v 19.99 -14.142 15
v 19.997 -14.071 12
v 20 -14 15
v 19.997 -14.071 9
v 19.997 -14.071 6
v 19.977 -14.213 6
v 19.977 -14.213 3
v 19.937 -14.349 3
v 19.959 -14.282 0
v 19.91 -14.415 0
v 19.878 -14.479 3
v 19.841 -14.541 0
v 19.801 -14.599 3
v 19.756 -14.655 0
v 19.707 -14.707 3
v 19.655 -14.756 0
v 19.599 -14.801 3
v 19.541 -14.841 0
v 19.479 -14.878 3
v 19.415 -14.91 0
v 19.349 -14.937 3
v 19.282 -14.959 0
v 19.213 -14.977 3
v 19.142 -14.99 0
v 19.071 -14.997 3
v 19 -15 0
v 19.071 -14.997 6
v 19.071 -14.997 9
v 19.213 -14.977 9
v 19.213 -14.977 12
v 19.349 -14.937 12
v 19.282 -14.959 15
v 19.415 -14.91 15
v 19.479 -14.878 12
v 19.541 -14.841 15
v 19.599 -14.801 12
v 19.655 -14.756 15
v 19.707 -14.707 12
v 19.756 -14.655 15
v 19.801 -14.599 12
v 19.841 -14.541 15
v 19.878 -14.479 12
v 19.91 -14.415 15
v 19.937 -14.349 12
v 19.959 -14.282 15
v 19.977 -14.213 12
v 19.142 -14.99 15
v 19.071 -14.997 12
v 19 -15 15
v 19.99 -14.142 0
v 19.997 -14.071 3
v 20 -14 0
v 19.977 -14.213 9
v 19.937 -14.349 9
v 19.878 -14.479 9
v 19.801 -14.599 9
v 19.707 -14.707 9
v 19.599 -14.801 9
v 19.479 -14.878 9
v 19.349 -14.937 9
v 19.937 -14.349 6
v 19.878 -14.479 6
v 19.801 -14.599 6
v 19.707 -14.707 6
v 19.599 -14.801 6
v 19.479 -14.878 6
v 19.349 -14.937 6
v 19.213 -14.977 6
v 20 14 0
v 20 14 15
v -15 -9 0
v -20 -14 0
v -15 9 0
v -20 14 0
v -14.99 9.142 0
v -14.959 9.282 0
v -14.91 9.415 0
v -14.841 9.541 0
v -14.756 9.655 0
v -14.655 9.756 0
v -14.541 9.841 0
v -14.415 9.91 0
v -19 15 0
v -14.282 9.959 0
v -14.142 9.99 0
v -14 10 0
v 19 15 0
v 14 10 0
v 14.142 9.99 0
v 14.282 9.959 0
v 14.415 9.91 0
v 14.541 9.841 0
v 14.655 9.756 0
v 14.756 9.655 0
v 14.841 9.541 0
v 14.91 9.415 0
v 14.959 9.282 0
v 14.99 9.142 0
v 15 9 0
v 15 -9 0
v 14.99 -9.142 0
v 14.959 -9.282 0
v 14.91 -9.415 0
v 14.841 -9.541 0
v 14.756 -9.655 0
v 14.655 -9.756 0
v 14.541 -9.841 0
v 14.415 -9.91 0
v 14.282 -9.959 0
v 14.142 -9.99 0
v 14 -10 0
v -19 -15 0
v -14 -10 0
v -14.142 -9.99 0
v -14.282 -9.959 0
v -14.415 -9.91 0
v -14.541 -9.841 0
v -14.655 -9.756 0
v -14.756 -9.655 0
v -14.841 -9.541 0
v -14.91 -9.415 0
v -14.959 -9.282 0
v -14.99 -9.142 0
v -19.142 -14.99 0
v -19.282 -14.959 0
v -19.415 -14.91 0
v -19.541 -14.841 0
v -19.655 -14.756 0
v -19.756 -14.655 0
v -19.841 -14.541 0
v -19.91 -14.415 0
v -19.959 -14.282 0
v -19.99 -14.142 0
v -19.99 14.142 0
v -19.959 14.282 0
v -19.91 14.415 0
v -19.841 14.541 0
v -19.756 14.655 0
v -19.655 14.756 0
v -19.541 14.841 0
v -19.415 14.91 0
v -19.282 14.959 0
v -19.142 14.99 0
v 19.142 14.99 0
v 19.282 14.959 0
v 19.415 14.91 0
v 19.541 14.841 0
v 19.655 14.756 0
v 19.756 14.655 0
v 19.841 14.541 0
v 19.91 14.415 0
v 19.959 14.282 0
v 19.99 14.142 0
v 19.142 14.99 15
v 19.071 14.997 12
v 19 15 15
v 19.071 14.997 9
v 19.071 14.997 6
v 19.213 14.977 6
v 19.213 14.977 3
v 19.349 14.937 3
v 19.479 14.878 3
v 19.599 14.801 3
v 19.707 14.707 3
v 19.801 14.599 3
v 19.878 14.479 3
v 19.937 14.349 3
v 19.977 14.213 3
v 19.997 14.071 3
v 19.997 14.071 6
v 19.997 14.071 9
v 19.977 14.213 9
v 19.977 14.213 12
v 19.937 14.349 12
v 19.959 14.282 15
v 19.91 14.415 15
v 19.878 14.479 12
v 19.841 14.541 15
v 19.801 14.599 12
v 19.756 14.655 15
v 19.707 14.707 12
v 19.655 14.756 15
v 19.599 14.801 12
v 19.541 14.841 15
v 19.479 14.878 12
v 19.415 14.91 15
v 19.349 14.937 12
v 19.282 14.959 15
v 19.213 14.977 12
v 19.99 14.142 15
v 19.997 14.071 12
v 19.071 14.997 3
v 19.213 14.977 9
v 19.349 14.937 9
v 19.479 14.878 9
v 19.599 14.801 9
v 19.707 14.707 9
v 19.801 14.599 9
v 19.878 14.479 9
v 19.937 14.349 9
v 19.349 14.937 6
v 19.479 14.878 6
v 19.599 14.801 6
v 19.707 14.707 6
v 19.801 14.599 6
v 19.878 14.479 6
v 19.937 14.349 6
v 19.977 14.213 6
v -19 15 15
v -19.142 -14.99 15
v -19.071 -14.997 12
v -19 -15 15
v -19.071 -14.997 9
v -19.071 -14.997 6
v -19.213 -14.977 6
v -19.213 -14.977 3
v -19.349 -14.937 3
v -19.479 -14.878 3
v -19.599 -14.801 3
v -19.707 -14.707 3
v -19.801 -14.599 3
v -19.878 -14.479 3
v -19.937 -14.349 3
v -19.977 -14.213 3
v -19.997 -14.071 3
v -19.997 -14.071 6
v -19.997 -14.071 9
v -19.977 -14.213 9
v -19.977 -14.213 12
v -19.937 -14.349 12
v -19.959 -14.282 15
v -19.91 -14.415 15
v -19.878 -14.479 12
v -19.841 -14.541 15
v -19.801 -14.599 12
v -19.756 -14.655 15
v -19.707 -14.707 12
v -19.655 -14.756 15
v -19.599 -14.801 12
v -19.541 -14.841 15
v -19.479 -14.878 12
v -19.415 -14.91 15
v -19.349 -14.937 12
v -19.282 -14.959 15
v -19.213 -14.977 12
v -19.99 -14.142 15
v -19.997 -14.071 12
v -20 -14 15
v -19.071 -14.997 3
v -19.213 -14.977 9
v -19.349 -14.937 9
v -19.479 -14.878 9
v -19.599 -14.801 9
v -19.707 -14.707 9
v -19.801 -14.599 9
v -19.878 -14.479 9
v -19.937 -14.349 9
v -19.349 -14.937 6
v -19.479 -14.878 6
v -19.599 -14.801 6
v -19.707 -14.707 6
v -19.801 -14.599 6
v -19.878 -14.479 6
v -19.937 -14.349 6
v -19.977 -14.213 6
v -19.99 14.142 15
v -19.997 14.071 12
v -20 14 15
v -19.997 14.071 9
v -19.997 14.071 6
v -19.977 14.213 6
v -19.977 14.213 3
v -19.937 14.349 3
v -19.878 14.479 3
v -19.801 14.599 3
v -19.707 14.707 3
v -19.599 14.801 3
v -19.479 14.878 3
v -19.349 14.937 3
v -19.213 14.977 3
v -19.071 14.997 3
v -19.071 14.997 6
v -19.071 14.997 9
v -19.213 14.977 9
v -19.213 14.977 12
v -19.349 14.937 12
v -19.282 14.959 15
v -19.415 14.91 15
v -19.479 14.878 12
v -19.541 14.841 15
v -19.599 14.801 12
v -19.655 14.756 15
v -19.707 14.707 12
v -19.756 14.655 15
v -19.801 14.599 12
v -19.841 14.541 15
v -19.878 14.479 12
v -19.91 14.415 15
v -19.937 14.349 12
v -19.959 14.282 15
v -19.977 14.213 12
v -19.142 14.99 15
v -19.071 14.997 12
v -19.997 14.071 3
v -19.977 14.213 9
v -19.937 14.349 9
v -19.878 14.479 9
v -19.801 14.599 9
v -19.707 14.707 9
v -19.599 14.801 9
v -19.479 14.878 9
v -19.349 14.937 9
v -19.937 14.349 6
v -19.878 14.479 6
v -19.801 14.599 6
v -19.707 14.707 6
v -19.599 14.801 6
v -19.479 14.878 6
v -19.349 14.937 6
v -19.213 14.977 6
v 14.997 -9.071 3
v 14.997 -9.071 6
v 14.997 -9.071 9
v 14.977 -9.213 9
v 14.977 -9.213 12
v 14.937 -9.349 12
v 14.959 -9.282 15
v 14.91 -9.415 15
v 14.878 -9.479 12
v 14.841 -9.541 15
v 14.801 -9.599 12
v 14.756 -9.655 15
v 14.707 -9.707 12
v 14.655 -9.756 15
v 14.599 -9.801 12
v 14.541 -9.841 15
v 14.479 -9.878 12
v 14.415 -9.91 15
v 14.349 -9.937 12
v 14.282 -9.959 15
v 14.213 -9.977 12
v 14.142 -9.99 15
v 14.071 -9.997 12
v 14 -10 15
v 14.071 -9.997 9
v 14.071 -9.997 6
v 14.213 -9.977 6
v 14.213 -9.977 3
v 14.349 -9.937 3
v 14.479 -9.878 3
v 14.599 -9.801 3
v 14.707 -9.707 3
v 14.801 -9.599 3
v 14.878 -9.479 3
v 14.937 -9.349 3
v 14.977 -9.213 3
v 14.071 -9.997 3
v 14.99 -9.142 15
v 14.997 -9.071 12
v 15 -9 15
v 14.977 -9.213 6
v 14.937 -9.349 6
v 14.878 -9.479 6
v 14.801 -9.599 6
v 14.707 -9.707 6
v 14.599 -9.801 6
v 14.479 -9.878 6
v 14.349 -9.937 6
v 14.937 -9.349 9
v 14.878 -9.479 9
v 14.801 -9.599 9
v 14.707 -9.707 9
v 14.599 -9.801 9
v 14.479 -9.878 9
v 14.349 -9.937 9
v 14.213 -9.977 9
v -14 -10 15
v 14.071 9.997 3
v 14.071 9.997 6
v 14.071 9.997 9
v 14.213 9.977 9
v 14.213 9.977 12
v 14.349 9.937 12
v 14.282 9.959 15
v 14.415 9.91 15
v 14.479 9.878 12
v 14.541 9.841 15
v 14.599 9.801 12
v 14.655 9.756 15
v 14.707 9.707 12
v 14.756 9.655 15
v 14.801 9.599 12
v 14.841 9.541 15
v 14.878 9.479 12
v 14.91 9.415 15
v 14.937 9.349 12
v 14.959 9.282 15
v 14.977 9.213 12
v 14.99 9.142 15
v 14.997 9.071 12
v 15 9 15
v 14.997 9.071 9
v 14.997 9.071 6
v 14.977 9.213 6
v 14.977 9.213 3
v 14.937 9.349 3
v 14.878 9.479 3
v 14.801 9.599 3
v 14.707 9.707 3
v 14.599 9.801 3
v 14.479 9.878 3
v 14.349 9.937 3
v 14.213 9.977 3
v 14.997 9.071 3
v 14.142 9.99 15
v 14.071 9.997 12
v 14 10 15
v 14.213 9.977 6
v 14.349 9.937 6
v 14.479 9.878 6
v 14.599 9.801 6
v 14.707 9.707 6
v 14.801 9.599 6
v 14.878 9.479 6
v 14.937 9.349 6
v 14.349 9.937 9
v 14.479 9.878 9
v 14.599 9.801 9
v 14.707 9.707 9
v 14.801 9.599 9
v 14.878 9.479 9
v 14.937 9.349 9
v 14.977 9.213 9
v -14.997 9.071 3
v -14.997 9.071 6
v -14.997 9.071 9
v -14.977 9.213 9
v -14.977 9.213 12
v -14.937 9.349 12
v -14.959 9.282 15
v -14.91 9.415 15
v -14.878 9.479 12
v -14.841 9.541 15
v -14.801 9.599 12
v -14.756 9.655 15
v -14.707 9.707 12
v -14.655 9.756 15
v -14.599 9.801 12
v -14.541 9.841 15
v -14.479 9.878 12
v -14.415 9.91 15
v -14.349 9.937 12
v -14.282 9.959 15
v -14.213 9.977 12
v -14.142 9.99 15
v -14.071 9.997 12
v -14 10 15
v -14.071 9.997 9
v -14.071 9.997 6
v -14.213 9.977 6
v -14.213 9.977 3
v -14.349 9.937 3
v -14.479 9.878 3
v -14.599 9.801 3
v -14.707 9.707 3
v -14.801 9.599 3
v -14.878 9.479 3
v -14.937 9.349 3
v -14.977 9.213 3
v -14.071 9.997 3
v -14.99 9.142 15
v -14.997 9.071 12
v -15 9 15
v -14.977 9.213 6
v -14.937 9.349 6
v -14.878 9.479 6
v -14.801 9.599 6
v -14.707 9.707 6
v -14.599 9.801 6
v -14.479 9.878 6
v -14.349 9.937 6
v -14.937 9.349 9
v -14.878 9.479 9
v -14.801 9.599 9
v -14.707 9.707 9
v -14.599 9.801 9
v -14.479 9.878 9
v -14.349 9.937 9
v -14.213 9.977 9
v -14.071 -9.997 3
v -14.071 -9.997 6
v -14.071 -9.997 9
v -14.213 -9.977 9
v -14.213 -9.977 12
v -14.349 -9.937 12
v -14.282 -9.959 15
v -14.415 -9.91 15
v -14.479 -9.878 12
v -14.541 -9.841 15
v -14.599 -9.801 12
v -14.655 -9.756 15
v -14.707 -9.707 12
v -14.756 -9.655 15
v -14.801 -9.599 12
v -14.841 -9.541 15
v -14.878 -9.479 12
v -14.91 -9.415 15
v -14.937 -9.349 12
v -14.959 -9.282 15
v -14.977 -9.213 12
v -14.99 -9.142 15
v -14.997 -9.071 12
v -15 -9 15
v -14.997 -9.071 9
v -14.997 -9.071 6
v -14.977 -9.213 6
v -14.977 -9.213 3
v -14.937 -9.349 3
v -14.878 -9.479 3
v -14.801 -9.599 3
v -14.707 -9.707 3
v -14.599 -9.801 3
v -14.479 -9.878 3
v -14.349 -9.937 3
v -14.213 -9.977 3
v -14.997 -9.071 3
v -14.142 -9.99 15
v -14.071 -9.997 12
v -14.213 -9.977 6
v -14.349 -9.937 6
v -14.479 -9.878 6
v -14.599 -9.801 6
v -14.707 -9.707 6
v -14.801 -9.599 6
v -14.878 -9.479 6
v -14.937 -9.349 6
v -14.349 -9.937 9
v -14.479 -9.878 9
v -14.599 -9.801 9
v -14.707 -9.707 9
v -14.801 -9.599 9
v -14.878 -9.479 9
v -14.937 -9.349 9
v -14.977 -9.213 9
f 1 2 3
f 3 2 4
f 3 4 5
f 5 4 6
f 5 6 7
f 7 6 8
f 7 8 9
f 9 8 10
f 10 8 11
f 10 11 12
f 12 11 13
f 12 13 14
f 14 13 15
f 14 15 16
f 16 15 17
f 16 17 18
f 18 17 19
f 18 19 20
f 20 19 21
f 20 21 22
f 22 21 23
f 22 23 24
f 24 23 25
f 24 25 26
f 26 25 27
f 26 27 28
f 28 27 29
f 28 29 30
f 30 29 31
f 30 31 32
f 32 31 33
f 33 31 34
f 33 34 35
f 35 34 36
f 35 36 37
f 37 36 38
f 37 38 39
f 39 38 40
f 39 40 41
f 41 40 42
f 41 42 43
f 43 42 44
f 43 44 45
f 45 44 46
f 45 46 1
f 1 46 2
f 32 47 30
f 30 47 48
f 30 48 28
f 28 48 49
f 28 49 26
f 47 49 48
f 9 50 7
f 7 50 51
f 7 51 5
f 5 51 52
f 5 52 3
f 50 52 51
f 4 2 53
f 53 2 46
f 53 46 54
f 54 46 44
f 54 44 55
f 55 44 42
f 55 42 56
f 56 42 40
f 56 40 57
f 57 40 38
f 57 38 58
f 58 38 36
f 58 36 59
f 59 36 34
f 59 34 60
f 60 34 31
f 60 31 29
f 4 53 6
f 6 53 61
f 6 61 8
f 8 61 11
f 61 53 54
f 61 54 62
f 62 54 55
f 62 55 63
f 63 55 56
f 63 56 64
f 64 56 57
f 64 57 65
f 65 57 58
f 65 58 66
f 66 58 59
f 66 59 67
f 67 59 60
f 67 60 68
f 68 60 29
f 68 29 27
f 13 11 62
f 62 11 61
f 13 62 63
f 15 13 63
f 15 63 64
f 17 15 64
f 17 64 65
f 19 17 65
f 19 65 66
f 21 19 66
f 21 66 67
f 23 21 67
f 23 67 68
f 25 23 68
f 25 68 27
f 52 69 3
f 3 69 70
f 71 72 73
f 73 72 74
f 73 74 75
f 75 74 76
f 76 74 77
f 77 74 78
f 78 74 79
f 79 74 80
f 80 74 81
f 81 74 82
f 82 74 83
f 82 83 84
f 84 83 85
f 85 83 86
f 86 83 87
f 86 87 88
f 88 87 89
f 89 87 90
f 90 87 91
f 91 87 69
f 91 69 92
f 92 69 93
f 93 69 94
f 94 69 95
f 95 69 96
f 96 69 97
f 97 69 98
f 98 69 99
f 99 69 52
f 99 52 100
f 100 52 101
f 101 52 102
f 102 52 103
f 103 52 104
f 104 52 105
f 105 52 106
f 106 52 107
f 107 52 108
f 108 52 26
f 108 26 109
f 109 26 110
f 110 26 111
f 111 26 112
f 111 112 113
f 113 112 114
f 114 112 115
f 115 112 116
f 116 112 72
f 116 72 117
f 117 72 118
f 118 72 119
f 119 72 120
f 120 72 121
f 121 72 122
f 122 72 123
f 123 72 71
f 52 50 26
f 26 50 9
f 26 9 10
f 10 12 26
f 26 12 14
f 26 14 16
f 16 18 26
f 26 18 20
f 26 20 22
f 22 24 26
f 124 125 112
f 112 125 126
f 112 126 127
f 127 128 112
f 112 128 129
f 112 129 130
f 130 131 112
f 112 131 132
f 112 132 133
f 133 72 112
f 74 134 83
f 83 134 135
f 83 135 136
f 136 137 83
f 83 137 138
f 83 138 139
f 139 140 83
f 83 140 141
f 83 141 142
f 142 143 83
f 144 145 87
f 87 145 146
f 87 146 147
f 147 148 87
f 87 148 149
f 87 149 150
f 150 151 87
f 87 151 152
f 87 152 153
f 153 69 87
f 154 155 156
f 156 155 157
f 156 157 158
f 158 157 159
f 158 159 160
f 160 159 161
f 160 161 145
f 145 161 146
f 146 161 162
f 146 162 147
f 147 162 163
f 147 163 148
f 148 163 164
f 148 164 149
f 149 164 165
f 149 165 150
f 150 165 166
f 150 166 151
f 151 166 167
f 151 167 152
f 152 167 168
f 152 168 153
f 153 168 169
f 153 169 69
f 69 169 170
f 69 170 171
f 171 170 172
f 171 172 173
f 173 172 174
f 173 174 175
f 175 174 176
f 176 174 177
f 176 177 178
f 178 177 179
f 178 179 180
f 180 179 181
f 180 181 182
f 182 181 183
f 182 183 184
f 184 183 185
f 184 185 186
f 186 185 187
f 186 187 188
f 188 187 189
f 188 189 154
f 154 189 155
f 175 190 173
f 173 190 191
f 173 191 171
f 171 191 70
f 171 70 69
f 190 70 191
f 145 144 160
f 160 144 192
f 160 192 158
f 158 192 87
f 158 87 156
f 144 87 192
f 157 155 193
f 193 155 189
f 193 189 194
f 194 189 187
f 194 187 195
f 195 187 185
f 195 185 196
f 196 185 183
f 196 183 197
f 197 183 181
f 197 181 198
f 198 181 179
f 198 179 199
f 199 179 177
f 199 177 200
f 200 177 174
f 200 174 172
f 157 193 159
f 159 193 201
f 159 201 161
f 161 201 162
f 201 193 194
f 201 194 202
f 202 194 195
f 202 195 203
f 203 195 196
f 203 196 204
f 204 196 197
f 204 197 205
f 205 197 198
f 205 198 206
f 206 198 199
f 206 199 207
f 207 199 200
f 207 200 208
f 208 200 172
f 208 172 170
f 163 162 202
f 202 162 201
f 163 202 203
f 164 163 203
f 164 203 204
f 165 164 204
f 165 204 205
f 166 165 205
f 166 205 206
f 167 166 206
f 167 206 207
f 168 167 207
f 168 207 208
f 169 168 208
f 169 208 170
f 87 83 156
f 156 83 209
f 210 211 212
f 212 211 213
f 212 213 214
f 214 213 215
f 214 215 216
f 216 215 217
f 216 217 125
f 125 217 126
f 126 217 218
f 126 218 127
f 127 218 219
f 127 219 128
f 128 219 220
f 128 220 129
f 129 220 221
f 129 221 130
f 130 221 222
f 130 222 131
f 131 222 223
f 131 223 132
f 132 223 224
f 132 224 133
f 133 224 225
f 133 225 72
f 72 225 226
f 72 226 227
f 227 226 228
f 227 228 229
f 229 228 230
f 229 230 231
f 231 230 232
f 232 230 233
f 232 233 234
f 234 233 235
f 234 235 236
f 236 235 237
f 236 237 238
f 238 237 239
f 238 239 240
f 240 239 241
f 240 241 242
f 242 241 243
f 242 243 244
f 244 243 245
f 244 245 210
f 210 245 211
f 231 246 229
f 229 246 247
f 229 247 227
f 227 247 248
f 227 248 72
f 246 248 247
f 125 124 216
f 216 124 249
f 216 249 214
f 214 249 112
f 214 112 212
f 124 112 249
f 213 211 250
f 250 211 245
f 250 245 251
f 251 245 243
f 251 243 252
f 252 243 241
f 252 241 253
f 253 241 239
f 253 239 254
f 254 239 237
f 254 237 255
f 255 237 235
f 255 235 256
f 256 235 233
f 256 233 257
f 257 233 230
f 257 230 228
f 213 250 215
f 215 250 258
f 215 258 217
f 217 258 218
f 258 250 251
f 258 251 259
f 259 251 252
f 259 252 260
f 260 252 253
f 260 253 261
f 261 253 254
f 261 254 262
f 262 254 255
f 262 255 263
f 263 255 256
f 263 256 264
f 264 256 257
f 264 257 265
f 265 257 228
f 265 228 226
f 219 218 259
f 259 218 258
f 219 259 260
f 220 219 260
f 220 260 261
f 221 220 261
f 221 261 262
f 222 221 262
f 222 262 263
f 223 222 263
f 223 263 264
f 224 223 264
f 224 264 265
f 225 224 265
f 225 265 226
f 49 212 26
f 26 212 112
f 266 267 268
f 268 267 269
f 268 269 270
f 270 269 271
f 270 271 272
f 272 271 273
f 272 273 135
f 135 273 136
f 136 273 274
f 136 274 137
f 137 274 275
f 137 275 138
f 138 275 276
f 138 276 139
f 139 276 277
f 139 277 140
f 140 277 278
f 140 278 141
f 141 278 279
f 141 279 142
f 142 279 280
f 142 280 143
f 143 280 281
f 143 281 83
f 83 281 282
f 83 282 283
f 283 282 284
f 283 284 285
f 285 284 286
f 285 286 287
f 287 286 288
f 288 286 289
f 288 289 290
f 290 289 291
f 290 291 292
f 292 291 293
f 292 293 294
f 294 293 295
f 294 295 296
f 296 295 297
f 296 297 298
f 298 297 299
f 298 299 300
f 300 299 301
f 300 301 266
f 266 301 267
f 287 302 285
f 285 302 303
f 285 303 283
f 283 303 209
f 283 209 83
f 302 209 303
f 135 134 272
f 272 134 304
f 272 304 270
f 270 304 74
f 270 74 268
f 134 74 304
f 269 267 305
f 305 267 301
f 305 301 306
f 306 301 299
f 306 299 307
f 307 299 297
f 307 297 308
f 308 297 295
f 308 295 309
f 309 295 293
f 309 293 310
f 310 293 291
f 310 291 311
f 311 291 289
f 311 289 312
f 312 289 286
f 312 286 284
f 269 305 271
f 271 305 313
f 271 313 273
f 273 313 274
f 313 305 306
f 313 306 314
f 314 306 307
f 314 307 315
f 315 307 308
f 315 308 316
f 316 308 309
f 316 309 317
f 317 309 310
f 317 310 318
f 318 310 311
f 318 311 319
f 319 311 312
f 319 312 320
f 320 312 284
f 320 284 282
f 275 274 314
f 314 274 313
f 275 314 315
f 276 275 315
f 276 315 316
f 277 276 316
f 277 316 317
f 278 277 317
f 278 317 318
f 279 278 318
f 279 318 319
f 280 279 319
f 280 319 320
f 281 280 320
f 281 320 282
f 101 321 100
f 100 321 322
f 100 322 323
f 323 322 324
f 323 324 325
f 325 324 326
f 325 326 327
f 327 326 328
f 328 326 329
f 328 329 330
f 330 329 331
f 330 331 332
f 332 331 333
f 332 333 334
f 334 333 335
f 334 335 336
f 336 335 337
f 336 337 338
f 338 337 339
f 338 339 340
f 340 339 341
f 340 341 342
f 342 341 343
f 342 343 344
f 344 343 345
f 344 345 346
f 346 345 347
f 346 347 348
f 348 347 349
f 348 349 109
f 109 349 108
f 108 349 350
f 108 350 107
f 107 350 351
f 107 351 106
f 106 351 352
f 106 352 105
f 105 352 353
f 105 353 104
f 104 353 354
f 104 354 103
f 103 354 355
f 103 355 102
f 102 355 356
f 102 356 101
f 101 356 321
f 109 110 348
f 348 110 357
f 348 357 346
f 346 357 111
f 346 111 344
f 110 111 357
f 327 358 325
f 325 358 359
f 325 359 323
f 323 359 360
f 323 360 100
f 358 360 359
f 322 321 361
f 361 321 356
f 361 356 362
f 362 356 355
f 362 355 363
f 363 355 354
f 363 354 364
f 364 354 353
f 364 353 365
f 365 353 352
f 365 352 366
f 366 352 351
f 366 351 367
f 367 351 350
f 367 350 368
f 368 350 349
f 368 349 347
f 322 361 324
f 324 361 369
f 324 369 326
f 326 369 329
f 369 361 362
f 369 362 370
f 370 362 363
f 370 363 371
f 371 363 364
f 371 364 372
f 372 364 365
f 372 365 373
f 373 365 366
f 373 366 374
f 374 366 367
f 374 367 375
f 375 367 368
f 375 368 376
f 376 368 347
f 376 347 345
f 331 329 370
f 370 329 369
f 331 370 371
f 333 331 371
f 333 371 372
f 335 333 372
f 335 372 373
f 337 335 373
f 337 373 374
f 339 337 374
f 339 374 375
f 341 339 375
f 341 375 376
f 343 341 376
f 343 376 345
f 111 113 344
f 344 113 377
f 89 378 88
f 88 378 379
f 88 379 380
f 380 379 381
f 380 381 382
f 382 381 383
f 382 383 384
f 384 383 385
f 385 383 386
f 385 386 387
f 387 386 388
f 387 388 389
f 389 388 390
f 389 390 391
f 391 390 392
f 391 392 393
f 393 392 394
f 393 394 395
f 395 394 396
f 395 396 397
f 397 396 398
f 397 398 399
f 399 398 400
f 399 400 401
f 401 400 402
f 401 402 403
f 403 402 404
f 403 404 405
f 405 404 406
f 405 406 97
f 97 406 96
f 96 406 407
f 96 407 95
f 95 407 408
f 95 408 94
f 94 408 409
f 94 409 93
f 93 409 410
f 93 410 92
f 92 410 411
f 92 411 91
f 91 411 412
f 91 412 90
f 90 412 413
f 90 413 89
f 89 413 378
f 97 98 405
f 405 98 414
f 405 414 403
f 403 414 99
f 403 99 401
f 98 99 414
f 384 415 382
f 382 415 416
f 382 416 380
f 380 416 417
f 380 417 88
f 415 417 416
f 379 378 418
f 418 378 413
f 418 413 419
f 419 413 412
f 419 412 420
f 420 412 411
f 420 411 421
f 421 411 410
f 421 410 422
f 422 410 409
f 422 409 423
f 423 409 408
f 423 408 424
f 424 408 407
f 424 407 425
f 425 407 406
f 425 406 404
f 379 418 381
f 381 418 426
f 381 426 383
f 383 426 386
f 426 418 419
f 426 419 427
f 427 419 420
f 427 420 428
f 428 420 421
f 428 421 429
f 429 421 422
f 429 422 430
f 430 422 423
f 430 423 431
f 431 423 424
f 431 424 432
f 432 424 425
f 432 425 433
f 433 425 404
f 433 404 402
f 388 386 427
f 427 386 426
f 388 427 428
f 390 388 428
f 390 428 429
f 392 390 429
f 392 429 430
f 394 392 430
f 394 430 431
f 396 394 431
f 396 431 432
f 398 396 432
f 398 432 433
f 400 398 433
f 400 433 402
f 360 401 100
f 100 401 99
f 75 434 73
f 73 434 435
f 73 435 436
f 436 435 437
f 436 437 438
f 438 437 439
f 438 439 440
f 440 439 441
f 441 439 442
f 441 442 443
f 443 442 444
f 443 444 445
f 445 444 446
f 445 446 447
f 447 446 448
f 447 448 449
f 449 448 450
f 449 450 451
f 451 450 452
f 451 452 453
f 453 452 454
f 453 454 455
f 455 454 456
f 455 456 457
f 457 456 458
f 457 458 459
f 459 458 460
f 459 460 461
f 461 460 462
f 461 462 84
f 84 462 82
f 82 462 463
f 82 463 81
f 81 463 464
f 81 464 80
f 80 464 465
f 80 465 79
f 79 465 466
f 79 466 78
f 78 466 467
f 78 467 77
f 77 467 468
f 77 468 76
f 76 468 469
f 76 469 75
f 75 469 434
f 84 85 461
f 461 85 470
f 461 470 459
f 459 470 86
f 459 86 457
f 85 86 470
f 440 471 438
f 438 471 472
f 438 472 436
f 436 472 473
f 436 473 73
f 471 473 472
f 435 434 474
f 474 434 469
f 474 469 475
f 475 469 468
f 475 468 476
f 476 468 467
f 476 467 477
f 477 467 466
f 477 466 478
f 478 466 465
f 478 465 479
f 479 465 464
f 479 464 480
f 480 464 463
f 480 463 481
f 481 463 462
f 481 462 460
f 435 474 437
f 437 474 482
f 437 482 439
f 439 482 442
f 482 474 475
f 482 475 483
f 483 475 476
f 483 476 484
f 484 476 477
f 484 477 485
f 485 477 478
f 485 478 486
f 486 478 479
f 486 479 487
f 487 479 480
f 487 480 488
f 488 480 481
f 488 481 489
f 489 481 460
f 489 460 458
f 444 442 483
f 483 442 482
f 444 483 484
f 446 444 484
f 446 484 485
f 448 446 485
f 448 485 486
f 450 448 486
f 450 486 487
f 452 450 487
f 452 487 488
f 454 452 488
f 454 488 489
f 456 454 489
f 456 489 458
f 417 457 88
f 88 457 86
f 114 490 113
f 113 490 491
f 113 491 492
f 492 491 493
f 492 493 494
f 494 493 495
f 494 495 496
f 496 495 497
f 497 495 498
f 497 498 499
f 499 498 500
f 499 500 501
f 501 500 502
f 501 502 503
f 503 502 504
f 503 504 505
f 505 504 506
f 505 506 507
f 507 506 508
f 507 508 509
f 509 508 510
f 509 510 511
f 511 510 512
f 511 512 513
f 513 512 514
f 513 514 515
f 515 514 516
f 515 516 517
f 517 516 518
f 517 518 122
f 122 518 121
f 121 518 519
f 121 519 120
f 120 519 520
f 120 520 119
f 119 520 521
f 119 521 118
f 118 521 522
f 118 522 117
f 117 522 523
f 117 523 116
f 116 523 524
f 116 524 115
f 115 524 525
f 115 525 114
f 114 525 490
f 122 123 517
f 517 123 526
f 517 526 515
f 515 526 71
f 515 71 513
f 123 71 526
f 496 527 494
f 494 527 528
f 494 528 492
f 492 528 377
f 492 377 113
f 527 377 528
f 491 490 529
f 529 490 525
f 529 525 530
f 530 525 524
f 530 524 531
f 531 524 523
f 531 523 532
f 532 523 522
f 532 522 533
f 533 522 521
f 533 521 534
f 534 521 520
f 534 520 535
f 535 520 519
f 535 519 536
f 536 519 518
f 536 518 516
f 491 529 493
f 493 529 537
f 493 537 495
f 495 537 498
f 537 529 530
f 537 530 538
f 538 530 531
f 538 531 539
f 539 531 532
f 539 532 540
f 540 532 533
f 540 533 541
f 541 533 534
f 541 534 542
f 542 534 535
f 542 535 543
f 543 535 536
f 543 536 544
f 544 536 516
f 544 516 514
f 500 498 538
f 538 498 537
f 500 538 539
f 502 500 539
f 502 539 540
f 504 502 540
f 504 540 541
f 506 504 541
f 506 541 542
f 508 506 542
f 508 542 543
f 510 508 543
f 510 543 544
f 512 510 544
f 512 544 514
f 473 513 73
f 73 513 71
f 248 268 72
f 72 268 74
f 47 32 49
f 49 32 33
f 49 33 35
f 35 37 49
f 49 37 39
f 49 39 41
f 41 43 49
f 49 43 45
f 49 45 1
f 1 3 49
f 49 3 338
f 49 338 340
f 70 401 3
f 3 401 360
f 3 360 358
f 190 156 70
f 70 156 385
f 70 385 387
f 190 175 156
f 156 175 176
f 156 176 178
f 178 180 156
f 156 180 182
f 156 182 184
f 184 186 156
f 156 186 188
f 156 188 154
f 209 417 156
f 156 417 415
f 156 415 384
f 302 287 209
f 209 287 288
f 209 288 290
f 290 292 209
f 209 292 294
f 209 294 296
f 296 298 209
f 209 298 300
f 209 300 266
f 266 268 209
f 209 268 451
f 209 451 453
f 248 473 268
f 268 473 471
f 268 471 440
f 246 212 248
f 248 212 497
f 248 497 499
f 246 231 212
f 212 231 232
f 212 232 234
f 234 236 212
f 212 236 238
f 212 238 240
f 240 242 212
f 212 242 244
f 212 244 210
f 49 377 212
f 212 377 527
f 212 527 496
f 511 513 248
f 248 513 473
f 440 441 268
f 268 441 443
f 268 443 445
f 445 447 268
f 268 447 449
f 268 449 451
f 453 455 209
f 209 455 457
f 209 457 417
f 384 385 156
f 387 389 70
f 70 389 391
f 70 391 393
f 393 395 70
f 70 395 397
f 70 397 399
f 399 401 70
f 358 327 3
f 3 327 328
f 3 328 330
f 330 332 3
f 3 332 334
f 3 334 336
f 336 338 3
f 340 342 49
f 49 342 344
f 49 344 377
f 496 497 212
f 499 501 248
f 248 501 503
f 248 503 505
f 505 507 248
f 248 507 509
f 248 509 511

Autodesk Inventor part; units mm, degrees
ref_plane "YZ Plane" through (0, 0, 0) normal (1, 0, 0) x (0, 1, 0)
ref_plane "XZ Plane" through (0, 0, 0) normal (0, 1, 0) x (-1, 0, 0)
ref_plane "XY Plane" through (0, 0, 0) normal (0, 0, 1) x (1, 0, 0)
sketch "Sketch1" plane through (0, 0, 0) normal (0, 0, 1) x (1, 0, 0)
  line L0 (15, -10) -> (-15, -10)
  line L1 (-15, -10) -> (-15, 10)
  line L2 (-15, 10) -> (15, 10)
  line L3 (15, 10) -> (15, -10)
  line L4 (15, -10) -> (-15, 10) construction
  line L5 (-15, -10) -> (15, 10) construction
  line L6 (20, -15) -> (-20, -15)
  line L7 (-20, -15) -> (-20, 15)
  line L8 (-20, 15) -> (20, 15)
  line L9 (20, 15) -> (20, -15)
  line L10 (20, -15) -> (-20, 15) construction
  line L11 (-20, -15) -> (20, 15) construction
  point P0 (0, 0)
  dimension "d0" = 30
  dimension "d1" = 20
  dimension "d2" = 40
  dimension "d3" = 30
extrude "Extrusion1" add sketch "Sketch1" along normal blind 15
fillet "Fillet1" radius 1 4 edges at (-15, -10, 7.5) (-15, 10, 7.5) (15, 10, 7.5) (15, -10, 7.5)
fillet "Fillet2" radius 1 4 edges at (-20, 15, 7.5) (-20, -15, 7.5) (20, 15, 7.5) (20, -15, 7.5)
properties part number "agarose-mold-mouse-brain"
